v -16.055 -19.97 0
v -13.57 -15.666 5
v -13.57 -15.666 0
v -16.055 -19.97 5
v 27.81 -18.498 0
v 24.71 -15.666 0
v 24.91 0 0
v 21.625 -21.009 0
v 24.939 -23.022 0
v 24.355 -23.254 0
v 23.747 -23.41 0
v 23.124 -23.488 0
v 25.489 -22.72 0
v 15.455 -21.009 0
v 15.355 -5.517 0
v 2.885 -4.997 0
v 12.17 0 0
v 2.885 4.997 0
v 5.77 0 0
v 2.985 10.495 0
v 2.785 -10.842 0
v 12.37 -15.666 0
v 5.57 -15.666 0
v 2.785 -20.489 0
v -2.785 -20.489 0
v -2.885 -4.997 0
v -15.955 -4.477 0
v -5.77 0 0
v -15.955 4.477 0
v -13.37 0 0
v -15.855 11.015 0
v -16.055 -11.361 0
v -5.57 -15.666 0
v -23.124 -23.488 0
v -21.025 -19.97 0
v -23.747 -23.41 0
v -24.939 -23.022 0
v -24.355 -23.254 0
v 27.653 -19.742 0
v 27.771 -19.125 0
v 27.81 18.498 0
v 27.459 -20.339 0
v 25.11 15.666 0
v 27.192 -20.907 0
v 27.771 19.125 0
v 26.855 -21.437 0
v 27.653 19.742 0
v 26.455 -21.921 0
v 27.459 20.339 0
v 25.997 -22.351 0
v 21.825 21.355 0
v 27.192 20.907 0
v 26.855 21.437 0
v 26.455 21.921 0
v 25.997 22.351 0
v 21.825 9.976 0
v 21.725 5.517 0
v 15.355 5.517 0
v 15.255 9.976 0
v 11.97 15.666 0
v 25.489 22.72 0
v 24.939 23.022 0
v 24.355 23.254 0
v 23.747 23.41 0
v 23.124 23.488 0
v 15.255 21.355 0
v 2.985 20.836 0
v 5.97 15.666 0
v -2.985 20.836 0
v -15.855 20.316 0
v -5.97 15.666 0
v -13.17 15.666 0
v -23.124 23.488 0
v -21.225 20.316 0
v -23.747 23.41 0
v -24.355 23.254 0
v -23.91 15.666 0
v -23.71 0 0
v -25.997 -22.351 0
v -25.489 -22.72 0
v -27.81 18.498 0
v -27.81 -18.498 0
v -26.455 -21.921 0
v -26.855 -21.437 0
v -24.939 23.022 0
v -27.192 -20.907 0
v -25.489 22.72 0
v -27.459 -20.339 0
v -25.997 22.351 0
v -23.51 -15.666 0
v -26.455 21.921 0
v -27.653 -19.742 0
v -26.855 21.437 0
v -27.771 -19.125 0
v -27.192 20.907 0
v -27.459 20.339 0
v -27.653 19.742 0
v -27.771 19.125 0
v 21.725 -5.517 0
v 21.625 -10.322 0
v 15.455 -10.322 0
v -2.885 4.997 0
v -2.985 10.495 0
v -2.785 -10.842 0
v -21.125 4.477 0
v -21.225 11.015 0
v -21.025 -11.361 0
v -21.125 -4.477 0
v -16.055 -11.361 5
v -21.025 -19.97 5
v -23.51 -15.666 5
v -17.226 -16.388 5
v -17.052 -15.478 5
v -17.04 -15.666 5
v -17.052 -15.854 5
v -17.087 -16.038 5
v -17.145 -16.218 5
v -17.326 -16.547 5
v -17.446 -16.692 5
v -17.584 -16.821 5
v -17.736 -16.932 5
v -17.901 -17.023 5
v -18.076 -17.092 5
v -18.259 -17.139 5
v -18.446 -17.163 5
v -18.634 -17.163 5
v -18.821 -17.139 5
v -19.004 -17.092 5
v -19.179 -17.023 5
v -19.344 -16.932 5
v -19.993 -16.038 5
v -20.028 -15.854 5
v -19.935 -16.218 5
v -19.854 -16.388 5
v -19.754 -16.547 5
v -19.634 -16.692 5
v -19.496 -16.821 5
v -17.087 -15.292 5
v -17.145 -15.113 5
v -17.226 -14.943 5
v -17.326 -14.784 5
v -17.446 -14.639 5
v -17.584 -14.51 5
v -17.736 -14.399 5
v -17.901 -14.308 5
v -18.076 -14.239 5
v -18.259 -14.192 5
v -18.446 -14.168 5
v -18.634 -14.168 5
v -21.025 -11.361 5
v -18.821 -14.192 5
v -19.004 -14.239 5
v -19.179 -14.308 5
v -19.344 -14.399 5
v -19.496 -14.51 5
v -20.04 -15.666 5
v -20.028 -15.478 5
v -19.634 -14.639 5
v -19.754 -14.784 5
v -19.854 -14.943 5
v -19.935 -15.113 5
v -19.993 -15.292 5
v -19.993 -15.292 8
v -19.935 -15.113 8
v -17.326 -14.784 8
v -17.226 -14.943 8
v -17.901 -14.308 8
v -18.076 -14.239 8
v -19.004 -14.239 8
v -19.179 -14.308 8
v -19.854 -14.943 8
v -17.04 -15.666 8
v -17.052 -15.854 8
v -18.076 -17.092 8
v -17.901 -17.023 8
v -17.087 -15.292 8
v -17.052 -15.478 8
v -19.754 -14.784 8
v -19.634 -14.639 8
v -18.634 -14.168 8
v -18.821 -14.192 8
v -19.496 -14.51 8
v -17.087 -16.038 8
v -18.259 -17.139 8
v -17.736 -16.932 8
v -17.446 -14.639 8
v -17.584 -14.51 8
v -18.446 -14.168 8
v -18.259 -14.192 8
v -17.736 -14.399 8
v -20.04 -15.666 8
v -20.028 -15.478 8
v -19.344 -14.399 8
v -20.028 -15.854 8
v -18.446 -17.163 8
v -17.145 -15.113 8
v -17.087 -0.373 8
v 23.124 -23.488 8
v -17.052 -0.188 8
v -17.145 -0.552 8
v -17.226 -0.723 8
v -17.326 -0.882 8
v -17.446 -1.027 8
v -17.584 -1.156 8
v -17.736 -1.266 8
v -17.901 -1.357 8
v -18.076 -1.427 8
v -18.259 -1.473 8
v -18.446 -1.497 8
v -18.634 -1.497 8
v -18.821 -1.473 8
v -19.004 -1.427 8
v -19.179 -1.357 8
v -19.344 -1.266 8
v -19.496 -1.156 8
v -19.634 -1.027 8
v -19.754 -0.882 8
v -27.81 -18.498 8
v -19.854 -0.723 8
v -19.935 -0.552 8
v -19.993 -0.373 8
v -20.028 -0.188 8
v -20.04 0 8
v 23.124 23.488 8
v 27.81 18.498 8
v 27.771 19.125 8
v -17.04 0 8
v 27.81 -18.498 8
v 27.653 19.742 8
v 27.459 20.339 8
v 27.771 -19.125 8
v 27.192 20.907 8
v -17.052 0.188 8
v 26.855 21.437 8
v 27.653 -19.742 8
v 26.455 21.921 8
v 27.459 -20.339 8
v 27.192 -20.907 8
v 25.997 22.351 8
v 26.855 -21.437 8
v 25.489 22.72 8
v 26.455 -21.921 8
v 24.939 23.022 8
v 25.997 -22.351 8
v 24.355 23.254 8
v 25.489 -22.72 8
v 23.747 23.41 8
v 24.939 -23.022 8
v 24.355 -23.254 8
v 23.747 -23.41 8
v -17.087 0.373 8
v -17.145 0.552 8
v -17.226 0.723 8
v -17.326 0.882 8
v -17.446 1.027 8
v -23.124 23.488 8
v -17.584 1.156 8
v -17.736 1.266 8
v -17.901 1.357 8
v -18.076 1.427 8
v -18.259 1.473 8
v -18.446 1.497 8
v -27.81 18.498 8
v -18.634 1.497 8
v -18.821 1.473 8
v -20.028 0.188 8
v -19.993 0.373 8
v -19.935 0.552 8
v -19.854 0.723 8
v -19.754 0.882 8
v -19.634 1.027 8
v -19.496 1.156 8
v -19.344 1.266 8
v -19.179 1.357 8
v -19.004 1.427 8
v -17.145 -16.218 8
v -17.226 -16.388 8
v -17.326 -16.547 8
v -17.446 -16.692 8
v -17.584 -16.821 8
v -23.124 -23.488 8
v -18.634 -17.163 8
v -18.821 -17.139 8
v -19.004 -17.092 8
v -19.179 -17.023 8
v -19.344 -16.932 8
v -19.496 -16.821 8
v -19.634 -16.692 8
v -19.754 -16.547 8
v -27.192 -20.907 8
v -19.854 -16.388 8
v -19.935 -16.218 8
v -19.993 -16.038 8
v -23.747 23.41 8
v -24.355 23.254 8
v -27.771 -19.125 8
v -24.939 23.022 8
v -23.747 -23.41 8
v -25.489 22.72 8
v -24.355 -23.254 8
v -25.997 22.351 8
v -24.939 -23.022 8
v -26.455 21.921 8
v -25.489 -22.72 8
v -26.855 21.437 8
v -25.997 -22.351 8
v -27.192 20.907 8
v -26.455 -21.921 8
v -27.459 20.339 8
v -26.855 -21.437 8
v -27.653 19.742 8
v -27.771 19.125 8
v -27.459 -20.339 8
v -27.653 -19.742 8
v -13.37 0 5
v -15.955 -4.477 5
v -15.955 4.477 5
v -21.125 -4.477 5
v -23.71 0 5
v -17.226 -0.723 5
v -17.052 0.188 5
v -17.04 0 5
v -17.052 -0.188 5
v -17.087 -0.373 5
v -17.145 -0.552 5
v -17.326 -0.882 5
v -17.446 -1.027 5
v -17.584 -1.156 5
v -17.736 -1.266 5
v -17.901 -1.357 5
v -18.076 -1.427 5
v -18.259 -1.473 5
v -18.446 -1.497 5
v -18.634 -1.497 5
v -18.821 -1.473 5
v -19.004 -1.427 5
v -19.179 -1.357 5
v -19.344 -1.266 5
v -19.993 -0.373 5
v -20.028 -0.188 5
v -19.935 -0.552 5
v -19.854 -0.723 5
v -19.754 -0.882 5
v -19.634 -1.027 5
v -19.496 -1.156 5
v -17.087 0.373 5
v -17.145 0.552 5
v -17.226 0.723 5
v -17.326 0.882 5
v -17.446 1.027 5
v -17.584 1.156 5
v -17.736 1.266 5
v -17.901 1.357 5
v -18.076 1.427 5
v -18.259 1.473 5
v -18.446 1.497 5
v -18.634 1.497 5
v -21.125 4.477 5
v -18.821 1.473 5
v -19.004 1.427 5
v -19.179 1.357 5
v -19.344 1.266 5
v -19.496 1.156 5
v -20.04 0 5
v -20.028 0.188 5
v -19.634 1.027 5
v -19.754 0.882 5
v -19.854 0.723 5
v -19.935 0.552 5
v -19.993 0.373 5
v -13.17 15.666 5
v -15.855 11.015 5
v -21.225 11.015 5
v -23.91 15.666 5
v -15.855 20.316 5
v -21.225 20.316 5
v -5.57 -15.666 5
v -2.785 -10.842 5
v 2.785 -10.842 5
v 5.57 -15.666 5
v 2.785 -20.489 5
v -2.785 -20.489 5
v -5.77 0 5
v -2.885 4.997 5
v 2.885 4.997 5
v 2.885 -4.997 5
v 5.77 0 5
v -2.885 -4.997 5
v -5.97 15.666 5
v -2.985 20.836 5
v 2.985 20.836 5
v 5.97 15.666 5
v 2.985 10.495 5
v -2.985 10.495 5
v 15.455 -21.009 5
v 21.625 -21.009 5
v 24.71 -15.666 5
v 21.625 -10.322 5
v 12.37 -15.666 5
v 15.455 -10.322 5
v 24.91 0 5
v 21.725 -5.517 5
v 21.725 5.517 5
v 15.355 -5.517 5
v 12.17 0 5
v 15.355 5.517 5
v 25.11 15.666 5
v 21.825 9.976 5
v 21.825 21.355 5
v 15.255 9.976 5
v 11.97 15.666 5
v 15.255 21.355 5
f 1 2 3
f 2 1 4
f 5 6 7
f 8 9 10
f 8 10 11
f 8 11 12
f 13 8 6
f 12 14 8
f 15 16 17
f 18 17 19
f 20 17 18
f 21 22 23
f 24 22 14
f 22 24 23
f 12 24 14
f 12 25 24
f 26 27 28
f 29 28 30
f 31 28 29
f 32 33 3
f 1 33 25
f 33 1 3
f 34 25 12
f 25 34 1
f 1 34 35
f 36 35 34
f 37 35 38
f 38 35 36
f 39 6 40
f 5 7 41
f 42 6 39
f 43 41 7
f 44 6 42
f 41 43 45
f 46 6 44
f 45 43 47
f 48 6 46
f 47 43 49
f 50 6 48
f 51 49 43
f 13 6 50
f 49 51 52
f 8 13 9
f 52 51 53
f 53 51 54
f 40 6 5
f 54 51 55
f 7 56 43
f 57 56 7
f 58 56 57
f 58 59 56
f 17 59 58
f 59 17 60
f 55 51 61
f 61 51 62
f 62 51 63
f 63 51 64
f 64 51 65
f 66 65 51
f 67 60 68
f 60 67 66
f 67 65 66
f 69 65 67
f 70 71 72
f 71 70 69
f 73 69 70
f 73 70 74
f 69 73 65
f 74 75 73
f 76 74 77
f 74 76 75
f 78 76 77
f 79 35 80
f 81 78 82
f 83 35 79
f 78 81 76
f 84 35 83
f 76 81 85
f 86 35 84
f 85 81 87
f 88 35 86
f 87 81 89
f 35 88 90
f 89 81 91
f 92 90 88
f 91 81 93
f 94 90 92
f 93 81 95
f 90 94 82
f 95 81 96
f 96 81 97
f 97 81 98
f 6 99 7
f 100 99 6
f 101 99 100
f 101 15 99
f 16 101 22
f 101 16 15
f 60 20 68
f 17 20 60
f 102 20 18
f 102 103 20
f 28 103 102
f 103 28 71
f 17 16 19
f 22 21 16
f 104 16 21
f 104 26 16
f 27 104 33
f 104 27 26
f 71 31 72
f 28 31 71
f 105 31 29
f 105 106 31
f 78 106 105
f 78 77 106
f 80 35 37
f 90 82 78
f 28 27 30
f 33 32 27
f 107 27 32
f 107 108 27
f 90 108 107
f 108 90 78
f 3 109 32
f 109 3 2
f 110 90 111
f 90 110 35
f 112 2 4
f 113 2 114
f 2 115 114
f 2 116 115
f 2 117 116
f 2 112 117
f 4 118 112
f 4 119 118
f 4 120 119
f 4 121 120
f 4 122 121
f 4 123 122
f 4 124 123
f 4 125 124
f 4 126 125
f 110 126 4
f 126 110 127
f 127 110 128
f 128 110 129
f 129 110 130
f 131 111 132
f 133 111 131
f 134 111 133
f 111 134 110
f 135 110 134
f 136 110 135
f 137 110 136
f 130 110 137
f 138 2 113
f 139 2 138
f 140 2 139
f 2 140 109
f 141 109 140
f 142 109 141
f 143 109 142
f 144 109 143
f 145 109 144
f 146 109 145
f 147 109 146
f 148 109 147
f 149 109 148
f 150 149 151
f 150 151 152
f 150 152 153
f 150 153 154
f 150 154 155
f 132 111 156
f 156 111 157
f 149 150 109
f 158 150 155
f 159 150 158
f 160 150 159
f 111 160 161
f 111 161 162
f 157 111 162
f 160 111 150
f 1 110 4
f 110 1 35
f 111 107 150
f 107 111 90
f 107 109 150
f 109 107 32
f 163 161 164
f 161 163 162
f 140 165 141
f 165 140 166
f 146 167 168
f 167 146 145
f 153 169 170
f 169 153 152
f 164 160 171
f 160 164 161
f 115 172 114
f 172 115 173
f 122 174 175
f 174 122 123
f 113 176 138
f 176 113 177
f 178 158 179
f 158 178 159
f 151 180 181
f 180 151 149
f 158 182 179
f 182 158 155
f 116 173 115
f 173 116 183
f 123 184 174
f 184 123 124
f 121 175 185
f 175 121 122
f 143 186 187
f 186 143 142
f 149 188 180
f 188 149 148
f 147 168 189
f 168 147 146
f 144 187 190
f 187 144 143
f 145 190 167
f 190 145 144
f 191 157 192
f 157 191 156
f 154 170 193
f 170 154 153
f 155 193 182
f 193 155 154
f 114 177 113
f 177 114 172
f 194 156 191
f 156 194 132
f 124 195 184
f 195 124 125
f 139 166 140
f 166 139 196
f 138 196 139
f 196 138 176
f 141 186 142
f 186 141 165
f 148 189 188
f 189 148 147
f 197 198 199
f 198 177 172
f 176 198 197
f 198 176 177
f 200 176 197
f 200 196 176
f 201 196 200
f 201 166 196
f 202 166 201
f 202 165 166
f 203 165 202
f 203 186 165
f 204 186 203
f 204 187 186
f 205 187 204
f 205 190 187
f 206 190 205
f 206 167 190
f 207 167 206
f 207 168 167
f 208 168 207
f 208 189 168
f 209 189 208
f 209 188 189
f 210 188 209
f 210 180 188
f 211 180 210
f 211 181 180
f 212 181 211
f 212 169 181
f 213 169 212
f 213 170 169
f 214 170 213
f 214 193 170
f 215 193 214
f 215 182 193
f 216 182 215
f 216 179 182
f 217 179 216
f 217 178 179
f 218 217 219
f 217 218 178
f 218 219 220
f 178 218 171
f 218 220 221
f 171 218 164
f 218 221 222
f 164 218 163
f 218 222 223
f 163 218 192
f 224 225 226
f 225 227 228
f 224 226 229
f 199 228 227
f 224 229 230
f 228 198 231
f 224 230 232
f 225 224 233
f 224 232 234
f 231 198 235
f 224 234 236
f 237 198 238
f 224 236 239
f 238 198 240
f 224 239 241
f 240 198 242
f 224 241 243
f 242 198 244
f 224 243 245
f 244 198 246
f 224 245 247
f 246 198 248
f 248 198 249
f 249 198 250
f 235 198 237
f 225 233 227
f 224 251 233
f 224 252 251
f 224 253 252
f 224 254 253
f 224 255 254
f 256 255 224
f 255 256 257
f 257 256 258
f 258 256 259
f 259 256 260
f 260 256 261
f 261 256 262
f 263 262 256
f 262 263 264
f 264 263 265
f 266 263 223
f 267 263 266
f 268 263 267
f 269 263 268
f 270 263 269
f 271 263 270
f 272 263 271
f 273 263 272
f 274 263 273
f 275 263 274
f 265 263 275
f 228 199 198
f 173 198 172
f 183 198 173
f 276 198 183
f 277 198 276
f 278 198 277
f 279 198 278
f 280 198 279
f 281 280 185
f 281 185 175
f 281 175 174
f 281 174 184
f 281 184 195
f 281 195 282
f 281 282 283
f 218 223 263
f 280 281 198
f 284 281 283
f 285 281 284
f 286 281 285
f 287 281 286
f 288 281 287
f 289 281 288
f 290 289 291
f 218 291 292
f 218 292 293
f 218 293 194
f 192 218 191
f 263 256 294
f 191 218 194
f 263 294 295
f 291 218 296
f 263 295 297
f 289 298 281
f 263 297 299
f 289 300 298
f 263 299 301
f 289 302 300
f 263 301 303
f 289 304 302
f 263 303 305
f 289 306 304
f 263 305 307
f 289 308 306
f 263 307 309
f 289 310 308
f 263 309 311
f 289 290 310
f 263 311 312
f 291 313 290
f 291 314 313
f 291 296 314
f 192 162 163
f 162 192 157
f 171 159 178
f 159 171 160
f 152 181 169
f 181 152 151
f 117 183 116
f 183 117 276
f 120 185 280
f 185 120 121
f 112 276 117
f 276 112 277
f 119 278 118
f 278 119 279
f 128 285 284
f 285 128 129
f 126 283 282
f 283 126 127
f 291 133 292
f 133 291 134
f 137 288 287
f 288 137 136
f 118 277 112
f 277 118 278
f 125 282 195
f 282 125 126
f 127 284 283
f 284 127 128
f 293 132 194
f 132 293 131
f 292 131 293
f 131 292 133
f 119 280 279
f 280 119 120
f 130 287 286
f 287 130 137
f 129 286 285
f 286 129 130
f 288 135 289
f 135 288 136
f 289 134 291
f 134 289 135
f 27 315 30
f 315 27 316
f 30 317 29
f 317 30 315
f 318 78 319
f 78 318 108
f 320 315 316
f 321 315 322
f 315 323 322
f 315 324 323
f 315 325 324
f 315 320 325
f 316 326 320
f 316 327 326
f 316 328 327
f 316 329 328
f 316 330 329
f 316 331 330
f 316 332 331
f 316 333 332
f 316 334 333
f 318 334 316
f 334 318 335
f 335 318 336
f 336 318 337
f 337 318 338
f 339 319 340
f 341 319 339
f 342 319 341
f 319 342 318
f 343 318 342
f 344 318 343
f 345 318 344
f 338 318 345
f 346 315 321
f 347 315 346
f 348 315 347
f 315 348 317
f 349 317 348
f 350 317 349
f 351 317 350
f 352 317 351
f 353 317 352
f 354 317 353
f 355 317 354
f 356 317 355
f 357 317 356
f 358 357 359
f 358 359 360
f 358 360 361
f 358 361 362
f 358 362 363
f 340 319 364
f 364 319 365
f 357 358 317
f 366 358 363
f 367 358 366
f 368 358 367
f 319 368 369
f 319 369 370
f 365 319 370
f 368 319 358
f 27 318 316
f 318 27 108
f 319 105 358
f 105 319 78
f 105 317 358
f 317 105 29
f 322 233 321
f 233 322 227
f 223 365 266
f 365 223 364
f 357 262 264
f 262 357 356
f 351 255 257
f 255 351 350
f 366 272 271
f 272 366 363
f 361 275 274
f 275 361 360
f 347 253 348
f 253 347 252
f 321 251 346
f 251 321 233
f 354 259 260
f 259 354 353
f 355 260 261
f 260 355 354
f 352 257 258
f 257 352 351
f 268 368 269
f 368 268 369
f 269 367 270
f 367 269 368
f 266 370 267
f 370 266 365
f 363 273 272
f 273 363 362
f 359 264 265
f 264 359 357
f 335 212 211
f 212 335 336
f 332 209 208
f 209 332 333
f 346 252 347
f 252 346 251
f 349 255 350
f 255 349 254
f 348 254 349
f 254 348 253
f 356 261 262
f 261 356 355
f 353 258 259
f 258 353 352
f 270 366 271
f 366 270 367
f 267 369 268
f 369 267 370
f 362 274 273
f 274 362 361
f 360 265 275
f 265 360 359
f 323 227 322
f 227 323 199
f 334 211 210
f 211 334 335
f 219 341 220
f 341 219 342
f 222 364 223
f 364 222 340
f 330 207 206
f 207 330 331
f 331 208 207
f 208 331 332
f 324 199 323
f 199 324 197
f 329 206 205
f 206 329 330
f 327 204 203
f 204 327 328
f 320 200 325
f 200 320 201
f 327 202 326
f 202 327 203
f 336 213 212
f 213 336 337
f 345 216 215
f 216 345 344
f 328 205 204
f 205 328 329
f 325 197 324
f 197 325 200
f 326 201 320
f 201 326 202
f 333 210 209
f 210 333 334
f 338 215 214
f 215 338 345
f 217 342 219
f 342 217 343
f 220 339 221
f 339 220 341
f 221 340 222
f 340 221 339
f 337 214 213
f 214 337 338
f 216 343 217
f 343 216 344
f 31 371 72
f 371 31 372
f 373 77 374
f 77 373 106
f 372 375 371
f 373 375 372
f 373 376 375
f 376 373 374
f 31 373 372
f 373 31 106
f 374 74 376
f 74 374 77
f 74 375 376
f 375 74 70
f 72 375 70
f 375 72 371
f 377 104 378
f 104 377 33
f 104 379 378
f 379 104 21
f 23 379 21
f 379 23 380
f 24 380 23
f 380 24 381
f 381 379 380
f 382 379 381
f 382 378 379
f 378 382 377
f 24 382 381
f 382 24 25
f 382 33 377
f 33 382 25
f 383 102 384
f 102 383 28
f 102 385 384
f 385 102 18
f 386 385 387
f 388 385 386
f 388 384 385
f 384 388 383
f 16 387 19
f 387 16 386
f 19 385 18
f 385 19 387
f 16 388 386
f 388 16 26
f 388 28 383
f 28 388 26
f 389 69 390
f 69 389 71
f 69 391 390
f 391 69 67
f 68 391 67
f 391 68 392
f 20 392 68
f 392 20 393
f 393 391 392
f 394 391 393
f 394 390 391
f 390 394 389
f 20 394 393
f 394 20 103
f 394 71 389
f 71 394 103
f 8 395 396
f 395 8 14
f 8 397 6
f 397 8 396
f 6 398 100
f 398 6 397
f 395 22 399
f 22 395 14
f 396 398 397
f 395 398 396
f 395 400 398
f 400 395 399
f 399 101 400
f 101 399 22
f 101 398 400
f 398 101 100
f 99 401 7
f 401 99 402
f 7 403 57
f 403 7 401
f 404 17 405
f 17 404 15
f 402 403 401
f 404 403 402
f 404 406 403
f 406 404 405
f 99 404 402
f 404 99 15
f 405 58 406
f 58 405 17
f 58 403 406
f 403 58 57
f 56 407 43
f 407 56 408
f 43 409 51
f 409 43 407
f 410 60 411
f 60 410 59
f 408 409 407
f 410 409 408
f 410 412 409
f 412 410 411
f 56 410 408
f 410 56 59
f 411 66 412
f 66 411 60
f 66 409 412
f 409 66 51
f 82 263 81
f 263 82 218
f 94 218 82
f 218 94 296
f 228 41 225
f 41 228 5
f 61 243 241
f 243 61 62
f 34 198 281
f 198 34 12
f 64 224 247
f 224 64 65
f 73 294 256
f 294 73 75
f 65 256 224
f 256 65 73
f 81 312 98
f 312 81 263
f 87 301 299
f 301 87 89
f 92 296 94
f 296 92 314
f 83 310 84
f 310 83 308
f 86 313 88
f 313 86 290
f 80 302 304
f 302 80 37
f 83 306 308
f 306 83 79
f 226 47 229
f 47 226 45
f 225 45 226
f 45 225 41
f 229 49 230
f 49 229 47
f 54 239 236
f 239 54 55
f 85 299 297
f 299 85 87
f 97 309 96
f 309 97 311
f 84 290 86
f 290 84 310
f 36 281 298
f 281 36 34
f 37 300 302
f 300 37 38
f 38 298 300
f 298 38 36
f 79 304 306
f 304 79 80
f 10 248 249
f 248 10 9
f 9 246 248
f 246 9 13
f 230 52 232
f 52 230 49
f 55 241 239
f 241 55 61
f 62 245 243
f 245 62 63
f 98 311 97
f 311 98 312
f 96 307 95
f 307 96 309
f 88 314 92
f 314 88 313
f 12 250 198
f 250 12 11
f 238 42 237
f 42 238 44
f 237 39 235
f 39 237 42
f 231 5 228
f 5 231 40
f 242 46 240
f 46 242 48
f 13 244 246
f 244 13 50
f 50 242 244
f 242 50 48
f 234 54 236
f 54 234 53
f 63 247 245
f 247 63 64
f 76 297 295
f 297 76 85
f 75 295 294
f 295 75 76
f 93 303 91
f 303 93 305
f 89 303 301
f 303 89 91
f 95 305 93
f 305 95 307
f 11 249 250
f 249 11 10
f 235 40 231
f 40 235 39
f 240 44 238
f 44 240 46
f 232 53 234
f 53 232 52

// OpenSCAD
$fn = 50;


difference() {
	union() {
		translate(v = [0, 0, 0]) {
			rotate(a = [0, 0, 0]) {
				hull() {
					translate(v = [-22.8100000000, 18.4982668977, 0]) {
						rotate(a = [0, 0, 0]) {
							translate(v = [0, 0, 0]) {
								rotate(a = [0, 0, 0]) {
									cylinder(h = 8, r = 5);
								}
							}
						}
					}
					translate(v = [22.8100000000, 18.4982668977, 0]) {
						rotate(a = [0, 0, 0]) {
							translate(v = [0, 0, 0]) {
								rotate(a = [0, 0, 0]) {
									cylinder(h = 8, r = 5);
								}
							}
						}
					}
					translate(v = [-22.8100000000, -18.4982668977, 0]) {
						rotate(a = [0, 0, 0]) {
							translate(v = [0, 0, 0]) {
								rotate(a = [0, 0, 0]) {
									cylinder(h = 8, r = 5);
								}
							}
						}
					}
					translate(v = [22.8100000000, -18.4982668977, 0]) {
						rotate(a = [0, 0, 0]) {
							translate(v = [0, 0, 0]) {
								rotate(a = [0, 0, 0]) {
									cylinder(h = 8, r = 5);
								}
							}
						}
					}
				}
			}
		}
	}
	union() {
		translate(v = [-18.5400000000, -15.6655112652, 0]) {
			rotate(a = [0, 0, 0]) {
				#translate(v = [0, 0, 0]) {
					rotate(a = [0, 0, 0]) {
						linear_extrude(height = 5) {
							polygon(points = [[4.9700000000, 0.0000000000], [2.4850000000, 4.3041462568], [-2.4850000000, 4.3041462568], [-4.9700000000, 0.0000000000], [-2.4850000000, -4.3041462568], [2.4850000000, -4.3041462568]]);
						}
					}
				}
			}
		}
		translate(v = [-18.5400000000, -15.6655112652, 0]) {
			rotate(a = [0, 0, 0]) {
				cylinder(h = 8, r = 1.5000000000);
			}
		}
		translate(v = [-18.5400000000, 0.0000000000, 0]) {
			rotate(a = [0, 0, 0]) {
				#translate(v = [0, 0, 0]) {
					rotate(a = [0, 0, 0]) {
						linear_extrude(height = 5) {
							polygon(points = [[5.1700000000, 0.0000000000], [2.5850000000, 4.4773513376], [-2.5850000000, 4.4773513376], [-5.1700000000, 0.0000000000], [-2.5850000000, -4.4773513376], [2.5850000000, -4.4773513376]]);
						}
					}
				}
			}
		}
		translate(v = [-18.5400000000, 0.0000000000, 0]) {
			rotate(a = [0, 0, 0]) {
				cylinder(h = 8, r = 1.5000000000);
			}
		}
		translate(v = [-18.5400000000, 15.6655112652, 0]) {
			rotate(a = [0, 0, 0]) {
				#translate(v = [0, 0, 0]) {
					rotate(a = [0, 0, 0]) {
						linear_extrude(height = 5) {
							polygon(points = [[5.3700000000, 0.0000000000], [2.6850000000, 4.6505564183], [-2.6850000000, 4.6505564183], [-5.3700000000, 0.0000000000], [-2.6850000000, -4.6505564183], [2.6850000000, -4.6505564183]]);
						}
					}
				}
			}
		}
		translate(v = [0.0000000000, -15.6655112652, 0]) {
			rotate(a = [0, 0, 0]) {
				#translate(v = [0, 0, 0]) {
					rotate(a = [0, 0, 0]) {
						linear_extrude(height = 5) {
							polygon(points = [[5.5700000000, 0.0000000000], [2.7850000000, 4.8237614991], [-2.7850000000, 4.8237614991], [-5.5700000000, 0.0000000000], [-2.7850000000, -4.8237614991], [2.7850000000, -4.8237614991]]);
						}
					}
				}
			}
		}
		translate(v = [0.0000000000, 0.0000000000, 0]) {
			rotate(a = [0, 0, 0]) {
				#translate(v = [0, 0, 0]) {
					rotate(a = [0, 0, 0]) {
						linear_extrude(height = 5) {
							polygon(points = [[5.7700000000, 0.0000000000], [2.8850000000, 4.9969665798], [-2.8850000000, 4.9969665798], [-5.7700000000, 0.0000000000], [-2.8850000000, -4.9969665798], [2.8850000000, -4.9969665798]]);
						}
					}
				}
			}
		}
		translate(v = [0.0000000000, 15.6655112652, 0]) {
			rotate(a = [0, 0, 0]) {
				#translate(v = [0, 0, 0]) {
					rotate(a = [0, 0, 0]) {
						linear_extrude(height = 5) {
							polygon(points = [[5.9700000000, 0.0000000000], [2.9850000000, 5.1701716606], [-2.9850000000, 5.1701716606], [-5.9700000000, 0.0000000000], [-2.9850000000, -5.1701716606], [2.9850000000, -5.1701716606]]);
						}
					}
				}
			}
		}
		translate(v = [18.5400000000, -15.6655112652, 0]) {
			rotate(a = [0, 0, 0]) {
				#translate(v = [0, 0, 0]) {
					rotate(a = [0, 0, 0]) {
						linear_extrude(height = 5) {
							polygon(points = [[6.1700000000, 0.0000000000], [3.0850000000, 5.3433767413], [-3.0850000000, 5.3433767413], [-6.1700000000, 0.0000000000], [-3.0850000000, -5.3433767413], [3.0850000000, -5.3433767413]]);
						}
					}
				}
			}
		}
		translate(v = [18.5400000000, 0.0000000000, 0]) {
			rotate(a = [0, 0, 0]) {
				#translate(v = [0, 0, 0]) {
					rotate(a = [0, 0, 0]) {
						linear_extrude(height = 5) {
							polygon(points = [[6.3700000000, 0.0000000000], [3.1850000000, 5.5165818221], [-3.1850000000, 5.5165818221], [-6.3700000000, 0.0000000000], [-3.1850000000, -5.5165818221], [3.1850000000, -5.5165818221]]);
						}
					}
				}
			}
		}
		translate(v = [18.5400000000, 15.6655112652, 0]) {
			rotate(a = [0, 0, 0]) {
				#translate(v = [0, 0, 0]) {
					rotate(a = [0, 0, 0]) {
						linear_extrude(height = 5) {
							polygon(points = [[6.5700000000, 0.0000000000], [3.2850000000, 5.6897869029], [-3.2850000000, 5.6897869029], [-6.5700000000, 0.0000000000], [-3.2850000000, -5.6897869029], [3.2850000000, -5.6897869029]]);
						}
					}
				}
			}
		}
	}
}
